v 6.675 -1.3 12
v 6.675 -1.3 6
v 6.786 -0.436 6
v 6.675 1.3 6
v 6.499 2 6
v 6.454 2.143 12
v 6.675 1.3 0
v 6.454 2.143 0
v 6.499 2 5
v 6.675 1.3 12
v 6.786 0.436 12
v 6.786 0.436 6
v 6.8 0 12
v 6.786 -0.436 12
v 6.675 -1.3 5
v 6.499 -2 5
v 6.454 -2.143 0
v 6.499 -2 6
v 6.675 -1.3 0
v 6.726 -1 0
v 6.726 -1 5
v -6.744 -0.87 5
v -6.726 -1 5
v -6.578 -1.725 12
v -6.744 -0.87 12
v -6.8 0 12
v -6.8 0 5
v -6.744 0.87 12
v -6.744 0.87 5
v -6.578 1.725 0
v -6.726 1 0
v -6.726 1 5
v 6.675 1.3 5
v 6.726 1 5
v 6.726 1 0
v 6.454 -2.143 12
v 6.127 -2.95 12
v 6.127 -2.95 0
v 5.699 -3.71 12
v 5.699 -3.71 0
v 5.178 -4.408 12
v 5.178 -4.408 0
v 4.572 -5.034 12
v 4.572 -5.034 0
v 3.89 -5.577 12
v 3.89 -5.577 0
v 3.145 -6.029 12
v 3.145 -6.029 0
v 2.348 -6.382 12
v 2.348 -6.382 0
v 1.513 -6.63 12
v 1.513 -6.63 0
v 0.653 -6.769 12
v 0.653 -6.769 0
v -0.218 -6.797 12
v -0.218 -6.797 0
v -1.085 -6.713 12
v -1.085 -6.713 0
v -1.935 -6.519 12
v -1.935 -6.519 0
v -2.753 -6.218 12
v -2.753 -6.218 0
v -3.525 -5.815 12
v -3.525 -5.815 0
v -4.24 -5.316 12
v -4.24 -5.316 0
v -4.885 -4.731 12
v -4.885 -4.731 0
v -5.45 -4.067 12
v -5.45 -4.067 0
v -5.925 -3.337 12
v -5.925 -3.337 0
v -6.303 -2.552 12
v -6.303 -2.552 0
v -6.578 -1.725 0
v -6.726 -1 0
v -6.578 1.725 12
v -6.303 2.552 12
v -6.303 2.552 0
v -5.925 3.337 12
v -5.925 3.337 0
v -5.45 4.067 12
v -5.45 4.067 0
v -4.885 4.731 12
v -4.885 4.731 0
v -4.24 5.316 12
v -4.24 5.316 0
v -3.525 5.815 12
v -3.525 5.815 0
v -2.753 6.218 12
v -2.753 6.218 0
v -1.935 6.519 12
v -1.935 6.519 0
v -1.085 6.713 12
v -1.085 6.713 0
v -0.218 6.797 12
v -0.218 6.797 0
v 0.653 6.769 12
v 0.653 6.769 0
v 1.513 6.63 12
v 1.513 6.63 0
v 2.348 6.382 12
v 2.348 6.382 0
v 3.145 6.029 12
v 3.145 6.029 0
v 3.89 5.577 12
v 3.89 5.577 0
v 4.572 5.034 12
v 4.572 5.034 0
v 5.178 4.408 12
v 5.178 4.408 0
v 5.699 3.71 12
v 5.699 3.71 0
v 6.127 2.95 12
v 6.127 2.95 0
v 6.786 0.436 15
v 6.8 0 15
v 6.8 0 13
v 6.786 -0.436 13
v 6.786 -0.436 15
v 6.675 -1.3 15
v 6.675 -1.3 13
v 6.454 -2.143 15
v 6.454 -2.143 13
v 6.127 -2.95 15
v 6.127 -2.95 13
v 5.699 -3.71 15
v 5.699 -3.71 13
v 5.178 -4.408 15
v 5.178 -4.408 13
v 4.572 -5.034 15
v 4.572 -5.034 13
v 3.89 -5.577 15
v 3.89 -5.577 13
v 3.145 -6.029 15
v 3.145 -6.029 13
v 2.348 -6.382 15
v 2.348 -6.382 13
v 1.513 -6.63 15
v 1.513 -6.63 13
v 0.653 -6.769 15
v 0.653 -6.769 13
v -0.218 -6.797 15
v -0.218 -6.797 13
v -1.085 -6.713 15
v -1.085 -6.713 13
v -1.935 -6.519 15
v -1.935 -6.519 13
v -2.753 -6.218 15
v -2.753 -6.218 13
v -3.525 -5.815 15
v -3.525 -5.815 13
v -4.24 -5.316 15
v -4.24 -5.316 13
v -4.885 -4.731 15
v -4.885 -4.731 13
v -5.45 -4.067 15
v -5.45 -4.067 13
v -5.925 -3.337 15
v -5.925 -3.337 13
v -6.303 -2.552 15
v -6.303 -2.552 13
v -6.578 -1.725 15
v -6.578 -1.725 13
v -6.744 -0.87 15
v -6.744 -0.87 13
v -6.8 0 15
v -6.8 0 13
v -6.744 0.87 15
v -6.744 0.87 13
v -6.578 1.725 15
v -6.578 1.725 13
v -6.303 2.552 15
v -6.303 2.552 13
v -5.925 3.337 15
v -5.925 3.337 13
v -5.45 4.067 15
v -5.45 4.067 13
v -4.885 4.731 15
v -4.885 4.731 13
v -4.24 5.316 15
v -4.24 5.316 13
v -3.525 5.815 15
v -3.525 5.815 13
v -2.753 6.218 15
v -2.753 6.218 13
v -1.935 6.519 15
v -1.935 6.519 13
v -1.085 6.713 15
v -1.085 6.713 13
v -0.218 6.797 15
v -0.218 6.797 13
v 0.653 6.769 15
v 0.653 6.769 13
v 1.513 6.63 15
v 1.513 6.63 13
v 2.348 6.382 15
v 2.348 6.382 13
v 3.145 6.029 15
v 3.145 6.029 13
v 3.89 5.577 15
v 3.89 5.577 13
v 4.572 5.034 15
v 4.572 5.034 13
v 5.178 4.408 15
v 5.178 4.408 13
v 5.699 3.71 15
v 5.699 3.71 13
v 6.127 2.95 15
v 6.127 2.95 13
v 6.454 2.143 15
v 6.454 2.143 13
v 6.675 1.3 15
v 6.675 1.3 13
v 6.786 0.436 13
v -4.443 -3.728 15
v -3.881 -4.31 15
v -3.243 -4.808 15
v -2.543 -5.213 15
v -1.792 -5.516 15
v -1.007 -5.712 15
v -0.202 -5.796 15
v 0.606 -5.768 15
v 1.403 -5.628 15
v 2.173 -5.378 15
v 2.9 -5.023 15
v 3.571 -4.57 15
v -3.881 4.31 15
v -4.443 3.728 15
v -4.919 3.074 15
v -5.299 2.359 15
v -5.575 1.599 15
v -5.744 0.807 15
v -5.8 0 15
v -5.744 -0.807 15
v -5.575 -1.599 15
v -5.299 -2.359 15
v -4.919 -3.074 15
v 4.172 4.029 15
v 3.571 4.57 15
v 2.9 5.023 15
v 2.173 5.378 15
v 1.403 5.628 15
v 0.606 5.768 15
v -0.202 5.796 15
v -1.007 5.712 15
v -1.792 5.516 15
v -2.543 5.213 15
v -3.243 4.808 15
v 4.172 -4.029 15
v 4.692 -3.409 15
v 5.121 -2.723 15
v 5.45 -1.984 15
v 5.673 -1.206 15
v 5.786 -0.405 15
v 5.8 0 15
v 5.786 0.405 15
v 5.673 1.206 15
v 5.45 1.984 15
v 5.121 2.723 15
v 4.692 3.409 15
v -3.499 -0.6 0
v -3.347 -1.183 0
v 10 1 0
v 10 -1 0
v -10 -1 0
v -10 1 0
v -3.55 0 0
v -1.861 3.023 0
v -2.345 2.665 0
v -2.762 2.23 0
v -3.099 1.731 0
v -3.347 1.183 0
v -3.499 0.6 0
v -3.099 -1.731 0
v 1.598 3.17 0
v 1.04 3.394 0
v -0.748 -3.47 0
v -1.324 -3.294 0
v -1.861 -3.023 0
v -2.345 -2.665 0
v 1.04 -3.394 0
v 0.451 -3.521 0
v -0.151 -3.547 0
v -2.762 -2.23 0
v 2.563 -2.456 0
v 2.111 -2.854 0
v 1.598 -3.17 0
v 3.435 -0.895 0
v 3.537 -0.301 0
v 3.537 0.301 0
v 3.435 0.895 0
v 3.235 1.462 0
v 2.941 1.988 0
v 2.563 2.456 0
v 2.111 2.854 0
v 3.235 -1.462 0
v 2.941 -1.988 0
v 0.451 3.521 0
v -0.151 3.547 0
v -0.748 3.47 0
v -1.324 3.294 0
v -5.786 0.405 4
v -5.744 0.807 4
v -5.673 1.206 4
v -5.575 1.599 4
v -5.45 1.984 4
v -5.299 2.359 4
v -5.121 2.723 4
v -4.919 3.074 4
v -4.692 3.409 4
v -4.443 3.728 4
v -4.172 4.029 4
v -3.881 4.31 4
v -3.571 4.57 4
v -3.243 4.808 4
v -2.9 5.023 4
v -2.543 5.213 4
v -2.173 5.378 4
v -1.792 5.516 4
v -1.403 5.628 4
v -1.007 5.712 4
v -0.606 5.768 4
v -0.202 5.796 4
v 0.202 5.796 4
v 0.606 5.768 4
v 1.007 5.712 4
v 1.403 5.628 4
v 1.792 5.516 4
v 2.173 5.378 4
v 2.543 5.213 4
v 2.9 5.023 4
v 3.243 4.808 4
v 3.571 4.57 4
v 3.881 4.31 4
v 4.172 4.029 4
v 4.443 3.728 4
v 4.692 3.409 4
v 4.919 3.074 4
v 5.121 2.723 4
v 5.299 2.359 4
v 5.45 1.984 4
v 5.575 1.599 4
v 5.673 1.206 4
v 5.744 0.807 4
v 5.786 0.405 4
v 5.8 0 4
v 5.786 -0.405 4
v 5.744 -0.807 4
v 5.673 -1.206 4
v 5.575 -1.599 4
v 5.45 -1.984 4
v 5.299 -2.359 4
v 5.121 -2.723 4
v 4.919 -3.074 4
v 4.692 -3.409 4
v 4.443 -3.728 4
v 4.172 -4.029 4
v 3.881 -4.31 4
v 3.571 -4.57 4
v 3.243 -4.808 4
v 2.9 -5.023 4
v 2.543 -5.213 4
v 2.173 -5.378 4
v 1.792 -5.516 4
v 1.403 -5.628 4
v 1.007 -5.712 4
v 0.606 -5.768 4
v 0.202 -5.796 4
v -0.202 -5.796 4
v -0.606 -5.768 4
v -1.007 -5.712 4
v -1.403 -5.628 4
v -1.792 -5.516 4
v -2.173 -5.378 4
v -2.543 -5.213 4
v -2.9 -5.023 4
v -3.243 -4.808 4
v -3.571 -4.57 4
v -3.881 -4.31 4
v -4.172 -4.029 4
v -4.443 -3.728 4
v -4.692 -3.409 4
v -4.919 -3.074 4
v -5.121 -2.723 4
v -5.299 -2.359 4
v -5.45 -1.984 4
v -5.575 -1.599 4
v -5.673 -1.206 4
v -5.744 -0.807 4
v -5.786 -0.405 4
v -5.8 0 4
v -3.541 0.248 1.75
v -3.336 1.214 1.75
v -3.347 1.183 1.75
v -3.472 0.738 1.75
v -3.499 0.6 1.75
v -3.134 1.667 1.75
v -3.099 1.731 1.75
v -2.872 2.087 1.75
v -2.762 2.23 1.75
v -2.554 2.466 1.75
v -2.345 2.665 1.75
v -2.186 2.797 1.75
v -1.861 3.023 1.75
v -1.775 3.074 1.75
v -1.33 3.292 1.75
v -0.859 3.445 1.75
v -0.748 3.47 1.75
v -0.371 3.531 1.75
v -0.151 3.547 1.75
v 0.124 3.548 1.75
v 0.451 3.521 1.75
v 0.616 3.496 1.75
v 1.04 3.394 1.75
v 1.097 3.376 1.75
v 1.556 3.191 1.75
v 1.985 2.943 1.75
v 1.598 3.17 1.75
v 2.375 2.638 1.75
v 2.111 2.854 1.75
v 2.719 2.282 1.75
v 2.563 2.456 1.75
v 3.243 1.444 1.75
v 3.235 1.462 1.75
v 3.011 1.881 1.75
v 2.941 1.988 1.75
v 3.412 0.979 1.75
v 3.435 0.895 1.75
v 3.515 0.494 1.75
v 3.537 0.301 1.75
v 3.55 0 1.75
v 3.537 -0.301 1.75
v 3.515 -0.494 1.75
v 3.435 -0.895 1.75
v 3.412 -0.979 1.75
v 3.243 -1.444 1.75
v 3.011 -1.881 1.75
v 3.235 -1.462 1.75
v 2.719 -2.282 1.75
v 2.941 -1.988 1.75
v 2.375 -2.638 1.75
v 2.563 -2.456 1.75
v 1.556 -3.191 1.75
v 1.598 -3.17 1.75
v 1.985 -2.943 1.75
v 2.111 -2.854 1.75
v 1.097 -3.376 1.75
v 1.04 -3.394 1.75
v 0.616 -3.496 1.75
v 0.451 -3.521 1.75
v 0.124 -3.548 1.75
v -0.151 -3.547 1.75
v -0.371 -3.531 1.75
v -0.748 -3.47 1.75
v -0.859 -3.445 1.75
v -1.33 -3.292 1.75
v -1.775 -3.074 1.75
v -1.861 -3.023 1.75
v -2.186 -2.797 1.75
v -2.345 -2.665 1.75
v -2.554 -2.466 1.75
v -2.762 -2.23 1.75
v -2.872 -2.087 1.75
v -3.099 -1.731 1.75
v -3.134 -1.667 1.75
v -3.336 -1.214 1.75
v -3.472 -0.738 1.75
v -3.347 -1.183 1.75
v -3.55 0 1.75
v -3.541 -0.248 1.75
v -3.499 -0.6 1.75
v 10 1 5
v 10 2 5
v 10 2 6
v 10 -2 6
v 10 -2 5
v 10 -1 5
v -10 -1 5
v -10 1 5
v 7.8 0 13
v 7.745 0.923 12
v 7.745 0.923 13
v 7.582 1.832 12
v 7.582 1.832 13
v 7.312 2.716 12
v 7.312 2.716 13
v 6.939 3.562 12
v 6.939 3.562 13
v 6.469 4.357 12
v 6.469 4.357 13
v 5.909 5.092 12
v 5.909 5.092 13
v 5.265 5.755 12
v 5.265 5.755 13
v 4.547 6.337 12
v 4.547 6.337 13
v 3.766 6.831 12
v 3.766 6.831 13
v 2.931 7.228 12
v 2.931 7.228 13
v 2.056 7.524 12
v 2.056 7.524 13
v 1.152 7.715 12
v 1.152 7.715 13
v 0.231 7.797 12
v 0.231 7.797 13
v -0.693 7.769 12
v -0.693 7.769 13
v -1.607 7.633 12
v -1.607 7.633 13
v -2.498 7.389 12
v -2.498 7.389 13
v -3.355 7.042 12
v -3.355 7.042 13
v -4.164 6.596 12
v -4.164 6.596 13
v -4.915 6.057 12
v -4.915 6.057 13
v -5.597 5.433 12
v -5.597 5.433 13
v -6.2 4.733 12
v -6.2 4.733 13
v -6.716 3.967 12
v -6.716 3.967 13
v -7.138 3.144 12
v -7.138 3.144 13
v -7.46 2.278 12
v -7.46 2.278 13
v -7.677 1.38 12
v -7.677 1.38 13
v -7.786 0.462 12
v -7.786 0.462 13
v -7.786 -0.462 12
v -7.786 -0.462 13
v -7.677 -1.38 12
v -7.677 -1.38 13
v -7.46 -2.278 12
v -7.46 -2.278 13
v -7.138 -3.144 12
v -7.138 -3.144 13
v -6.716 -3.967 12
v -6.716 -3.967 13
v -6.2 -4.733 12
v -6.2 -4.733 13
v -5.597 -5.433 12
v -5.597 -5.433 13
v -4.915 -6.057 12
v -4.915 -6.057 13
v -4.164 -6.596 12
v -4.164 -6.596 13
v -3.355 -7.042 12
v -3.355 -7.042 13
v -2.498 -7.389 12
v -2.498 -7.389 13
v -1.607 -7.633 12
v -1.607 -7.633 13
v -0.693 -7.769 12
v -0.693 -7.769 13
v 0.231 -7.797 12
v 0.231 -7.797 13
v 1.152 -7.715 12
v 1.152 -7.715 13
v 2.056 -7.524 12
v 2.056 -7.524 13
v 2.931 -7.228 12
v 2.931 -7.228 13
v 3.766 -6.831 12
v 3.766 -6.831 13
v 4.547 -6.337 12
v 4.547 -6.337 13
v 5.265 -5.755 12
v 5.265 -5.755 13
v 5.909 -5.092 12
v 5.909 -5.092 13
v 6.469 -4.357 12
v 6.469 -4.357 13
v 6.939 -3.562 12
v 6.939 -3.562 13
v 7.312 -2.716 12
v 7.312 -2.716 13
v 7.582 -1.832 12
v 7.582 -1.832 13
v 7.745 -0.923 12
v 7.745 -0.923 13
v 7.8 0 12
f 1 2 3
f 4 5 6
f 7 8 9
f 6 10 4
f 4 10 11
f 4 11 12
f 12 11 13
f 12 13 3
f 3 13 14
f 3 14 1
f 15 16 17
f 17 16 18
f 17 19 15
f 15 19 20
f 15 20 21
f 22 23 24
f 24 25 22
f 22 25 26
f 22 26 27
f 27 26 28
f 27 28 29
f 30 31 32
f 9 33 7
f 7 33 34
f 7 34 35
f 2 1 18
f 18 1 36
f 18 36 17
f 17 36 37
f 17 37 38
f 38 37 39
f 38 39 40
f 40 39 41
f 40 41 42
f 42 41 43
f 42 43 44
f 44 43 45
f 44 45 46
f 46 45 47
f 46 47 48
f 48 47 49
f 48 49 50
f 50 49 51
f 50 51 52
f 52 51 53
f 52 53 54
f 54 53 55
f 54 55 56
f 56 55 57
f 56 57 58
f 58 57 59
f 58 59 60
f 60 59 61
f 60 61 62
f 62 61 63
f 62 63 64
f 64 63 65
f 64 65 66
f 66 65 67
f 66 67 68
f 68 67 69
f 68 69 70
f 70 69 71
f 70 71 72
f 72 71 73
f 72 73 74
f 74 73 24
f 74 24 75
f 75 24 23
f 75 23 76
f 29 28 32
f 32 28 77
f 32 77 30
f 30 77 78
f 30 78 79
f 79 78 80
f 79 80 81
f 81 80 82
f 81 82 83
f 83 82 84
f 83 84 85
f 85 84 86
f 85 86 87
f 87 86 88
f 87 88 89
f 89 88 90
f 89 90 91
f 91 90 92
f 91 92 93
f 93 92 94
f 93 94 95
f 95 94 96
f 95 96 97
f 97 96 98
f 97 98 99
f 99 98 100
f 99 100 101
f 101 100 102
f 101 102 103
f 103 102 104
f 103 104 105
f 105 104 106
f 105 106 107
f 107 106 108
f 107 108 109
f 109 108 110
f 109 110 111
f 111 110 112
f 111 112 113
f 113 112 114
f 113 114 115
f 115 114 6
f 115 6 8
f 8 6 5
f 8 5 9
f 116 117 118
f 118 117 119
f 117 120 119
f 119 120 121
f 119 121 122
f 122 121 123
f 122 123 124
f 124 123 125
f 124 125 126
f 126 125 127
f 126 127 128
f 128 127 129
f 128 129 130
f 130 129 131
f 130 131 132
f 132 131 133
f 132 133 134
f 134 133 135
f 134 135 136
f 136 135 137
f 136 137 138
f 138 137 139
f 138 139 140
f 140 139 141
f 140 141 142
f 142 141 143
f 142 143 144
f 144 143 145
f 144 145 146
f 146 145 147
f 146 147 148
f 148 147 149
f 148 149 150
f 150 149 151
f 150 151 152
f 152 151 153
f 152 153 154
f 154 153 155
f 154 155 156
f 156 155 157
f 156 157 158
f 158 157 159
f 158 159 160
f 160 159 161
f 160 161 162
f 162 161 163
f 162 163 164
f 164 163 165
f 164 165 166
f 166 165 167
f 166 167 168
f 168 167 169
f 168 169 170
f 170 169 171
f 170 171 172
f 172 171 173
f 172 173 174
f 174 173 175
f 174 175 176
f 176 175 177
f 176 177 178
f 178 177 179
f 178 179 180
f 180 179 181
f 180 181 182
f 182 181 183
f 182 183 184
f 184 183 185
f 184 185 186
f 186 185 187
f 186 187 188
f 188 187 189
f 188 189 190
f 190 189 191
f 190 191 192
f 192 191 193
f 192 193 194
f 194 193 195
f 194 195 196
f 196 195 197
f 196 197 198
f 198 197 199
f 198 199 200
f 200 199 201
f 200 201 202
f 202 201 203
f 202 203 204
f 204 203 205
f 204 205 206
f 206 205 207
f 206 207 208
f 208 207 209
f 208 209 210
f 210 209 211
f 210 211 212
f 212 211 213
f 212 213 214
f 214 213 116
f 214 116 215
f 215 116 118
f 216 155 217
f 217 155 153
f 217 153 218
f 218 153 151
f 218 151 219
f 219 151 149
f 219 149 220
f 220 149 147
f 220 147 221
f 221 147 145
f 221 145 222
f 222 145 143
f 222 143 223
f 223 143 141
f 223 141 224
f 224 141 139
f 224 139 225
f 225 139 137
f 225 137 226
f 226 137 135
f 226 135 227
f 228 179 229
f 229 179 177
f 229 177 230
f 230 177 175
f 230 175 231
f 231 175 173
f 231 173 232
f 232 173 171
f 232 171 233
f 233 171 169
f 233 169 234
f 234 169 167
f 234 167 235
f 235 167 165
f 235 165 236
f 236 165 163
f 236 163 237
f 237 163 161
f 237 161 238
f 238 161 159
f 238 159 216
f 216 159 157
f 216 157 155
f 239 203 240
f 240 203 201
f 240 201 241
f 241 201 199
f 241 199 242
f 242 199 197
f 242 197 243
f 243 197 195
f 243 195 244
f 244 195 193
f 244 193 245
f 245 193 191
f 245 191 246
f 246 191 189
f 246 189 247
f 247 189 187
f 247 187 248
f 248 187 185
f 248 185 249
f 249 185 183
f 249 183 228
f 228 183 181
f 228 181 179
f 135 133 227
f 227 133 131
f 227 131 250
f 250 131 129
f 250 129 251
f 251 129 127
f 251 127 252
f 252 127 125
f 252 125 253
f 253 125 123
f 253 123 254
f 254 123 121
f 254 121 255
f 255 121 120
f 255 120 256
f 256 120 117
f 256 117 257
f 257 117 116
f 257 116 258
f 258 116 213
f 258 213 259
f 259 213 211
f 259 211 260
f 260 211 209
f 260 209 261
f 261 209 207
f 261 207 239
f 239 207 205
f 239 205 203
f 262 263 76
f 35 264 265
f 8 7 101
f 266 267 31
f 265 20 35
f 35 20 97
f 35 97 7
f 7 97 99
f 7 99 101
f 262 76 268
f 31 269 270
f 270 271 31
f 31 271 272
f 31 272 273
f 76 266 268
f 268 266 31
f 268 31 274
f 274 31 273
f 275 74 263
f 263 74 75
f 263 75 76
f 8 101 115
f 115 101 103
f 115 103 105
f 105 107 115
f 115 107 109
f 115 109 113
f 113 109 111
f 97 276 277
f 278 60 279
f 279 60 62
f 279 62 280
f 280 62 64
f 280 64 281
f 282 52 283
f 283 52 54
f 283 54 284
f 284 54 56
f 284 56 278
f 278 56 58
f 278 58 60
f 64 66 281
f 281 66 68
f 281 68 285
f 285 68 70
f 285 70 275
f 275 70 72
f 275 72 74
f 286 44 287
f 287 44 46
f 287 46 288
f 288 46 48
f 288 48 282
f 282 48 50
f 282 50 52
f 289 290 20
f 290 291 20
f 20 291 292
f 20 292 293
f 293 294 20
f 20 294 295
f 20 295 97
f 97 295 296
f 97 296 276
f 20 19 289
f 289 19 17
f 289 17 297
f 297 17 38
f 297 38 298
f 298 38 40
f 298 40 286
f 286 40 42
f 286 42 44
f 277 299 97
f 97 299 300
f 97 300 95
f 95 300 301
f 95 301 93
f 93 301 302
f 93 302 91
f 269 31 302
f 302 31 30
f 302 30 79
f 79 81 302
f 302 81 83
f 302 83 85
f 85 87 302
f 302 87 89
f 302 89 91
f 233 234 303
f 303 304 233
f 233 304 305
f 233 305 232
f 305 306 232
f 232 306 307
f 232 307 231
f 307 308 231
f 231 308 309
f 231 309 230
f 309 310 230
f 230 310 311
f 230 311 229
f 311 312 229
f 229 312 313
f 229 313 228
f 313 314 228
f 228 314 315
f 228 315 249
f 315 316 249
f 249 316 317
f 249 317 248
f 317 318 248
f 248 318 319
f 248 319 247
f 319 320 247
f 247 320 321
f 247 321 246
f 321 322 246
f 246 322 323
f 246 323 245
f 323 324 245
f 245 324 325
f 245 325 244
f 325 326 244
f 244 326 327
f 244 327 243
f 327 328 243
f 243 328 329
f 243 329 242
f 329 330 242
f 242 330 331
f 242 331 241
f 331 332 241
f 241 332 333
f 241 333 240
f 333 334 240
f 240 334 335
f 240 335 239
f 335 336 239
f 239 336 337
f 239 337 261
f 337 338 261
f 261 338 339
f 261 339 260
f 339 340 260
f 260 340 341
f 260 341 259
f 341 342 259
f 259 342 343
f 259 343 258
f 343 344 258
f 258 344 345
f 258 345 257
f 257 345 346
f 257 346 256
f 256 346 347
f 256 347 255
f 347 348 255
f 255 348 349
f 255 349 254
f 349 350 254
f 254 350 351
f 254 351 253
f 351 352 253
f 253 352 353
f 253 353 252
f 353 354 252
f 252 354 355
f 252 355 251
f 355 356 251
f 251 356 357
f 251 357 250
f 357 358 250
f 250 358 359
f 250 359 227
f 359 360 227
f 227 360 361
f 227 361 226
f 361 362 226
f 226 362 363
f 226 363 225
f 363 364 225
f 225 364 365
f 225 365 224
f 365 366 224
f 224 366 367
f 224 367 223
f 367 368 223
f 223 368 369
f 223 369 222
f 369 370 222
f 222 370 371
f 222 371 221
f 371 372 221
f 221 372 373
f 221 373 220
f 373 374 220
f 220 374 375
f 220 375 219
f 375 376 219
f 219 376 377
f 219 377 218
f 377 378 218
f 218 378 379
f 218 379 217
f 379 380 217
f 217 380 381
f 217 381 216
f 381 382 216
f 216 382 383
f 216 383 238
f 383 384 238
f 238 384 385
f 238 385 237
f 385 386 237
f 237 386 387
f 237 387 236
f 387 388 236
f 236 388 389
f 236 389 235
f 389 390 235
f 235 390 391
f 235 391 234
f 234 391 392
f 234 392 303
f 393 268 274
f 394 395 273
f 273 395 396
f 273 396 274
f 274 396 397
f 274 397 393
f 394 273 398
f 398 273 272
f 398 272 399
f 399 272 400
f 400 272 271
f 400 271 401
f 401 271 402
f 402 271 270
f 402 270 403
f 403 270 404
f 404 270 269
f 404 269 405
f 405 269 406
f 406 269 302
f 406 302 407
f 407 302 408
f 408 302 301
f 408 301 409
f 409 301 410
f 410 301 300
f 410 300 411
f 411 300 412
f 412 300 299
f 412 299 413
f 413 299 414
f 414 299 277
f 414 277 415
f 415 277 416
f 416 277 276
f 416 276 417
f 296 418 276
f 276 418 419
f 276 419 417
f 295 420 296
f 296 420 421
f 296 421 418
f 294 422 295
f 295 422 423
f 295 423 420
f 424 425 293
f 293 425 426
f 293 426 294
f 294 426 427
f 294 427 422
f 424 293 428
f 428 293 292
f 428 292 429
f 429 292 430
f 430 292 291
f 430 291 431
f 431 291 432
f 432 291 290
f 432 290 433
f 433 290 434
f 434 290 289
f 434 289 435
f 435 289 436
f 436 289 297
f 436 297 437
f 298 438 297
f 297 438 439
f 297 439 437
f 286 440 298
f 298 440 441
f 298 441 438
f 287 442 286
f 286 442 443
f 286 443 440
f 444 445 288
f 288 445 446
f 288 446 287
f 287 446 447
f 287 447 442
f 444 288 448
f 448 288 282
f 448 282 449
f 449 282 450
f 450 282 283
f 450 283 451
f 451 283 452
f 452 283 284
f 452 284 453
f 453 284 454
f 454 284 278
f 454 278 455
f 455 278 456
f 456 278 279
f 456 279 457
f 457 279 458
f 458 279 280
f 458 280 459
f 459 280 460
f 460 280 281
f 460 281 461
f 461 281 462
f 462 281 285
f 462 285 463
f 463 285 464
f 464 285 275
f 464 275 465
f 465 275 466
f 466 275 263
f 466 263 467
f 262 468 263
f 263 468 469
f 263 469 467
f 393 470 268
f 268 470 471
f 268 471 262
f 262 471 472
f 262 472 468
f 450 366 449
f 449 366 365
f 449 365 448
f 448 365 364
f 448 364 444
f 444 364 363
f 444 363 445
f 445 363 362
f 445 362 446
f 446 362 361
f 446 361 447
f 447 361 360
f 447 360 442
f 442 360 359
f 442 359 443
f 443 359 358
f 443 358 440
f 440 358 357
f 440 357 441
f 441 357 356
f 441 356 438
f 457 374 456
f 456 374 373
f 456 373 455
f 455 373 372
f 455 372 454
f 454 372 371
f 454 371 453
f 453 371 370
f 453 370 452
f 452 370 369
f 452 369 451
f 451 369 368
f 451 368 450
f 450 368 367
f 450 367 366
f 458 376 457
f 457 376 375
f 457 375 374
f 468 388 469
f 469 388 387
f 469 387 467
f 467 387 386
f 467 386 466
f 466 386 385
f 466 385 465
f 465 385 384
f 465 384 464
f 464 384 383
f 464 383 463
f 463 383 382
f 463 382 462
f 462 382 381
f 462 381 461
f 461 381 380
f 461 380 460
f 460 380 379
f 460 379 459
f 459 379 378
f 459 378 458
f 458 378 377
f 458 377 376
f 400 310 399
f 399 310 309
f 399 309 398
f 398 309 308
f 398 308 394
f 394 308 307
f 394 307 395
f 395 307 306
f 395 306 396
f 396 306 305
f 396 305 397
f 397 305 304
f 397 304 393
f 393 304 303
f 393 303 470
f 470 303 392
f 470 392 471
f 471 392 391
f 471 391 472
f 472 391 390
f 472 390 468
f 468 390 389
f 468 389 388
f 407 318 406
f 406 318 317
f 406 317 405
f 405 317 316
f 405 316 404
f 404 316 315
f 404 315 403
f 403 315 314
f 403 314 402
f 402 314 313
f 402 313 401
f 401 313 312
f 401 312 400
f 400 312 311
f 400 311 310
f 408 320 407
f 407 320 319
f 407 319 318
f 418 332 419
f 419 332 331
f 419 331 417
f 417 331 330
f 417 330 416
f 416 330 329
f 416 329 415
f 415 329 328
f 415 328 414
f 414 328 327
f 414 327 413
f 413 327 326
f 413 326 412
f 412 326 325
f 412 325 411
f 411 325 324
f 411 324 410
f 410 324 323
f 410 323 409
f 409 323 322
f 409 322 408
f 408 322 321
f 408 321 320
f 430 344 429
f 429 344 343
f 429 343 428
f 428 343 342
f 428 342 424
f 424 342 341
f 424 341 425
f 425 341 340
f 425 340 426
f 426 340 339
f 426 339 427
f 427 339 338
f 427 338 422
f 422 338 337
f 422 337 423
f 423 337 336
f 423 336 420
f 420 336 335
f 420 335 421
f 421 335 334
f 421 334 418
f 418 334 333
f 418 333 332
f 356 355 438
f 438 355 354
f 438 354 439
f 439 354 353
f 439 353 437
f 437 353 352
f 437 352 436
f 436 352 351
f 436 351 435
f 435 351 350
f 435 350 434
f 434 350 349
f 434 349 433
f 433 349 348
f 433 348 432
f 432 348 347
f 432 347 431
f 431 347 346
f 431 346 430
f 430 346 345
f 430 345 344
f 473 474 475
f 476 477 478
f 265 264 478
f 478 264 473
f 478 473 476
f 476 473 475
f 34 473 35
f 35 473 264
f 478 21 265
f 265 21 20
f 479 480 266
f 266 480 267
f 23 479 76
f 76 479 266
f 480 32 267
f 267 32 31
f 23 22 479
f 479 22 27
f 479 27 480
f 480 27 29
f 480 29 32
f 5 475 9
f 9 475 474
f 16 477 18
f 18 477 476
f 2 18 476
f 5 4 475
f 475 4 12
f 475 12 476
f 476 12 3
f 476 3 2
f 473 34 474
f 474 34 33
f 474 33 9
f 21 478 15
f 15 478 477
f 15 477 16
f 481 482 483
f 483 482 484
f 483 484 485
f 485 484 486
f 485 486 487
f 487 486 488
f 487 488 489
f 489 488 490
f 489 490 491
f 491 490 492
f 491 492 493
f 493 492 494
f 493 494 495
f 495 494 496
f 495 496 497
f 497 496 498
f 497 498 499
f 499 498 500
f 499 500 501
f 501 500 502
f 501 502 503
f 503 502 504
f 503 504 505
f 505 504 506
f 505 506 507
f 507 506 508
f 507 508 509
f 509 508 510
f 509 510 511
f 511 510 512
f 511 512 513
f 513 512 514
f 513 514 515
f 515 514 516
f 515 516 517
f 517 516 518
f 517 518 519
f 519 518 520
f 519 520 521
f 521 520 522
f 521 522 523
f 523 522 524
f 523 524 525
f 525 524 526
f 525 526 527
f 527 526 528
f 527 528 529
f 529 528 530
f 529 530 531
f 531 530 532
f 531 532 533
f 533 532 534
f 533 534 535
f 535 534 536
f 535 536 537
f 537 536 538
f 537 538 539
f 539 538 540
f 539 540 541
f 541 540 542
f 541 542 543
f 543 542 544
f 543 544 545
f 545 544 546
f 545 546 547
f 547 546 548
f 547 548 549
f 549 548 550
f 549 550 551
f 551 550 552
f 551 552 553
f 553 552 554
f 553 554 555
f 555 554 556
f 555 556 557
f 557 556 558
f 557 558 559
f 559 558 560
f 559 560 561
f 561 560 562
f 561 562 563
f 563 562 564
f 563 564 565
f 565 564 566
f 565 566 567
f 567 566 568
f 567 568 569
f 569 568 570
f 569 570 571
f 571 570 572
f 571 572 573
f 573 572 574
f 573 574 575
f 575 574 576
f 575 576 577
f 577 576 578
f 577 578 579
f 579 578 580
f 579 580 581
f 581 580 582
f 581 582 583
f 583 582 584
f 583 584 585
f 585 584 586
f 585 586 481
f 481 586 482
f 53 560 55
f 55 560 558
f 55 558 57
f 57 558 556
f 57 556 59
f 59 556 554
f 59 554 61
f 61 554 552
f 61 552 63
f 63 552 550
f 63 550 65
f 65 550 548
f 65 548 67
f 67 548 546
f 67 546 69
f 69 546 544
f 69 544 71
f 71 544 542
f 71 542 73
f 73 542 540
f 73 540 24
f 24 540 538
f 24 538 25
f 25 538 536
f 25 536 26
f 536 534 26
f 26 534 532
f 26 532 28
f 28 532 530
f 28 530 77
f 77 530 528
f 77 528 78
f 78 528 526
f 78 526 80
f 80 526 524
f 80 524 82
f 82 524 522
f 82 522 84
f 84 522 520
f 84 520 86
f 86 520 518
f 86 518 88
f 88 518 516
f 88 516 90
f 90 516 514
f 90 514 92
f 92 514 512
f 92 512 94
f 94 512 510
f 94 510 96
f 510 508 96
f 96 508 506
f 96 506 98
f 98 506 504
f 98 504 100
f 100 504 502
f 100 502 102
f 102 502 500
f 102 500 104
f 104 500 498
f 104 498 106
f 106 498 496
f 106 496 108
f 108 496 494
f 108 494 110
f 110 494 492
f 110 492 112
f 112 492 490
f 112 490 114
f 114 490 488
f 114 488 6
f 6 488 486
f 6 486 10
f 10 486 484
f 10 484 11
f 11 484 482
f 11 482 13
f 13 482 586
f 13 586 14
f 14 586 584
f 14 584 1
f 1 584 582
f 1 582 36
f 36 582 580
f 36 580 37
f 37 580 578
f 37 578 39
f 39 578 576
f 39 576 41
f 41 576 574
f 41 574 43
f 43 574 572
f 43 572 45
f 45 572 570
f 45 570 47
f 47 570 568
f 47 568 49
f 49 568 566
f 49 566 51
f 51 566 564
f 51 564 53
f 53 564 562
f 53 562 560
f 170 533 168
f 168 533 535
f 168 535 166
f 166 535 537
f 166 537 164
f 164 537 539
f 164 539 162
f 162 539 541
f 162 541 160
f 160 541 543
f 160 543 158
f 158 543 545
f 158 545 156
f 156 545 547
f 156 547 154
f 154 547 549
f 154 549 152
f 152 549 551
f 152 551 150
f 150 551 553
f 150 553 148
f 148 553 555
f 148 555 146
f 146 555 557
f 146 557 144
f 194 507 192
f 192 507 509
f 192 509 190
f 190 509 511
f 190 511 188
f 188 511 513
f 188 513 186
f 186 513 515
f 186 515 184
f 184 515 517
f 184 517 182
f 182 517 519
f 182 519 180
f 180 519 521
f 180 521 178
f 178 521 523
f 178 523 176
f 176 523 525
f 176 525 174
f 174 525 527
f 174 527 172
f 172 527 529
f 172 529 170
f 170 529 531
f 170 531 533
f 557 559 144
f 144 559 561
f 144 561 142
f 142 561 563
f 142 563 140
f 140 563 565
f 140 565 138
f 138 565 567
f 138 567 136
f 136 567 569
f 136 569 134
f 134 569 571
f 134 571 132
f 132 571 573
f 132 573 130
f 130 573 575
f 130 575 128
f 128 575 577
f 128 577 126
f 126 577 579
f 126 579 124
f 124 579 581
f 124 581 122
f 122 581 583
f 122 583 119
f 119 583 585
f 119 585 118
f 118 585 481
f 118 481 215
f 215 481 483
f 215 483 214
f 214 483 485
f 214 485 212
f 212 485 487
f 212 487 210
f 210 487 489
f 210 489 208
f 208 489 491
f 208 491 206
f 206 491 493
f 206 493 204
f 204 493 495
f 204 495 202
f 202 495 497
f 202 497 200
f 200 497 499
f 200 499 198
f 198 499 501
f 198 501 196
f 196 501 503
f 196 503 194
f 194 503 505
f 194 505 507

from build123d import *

# Parameters (mm, degrees)
ESQUISSE1_R             = 6.8
BOSS_EXTRU_1_DEPTH      = 15
COQUE1_T                = -1
ESQUISSE2_R             = 3.55
ENL_V_MAT_EXTRU_1_DEPTH = 15
CHANFREIN1_SIZE         = 3
BOSS_EXTRU_2_DEPTH      = 5
BOSS_EXTRU_3_DEPTH      = 1
BOSS_EXTRU_4_START      = -3
ESQUISSE5_R             = 7.8
ESQUISSE5_R_2           = 6.8
BOSS_EXTRU_4_DEPTH      = 1


with BuildPart() as part:
    # Esquisse1 → Boss.-Extru.1 (new body)
    with BuildSketch(Plane.XY):
        Circle(ESQUISSE1_R)
    extrude(amount=BOSS_EXTRU_1_DEPTH)

    # Coque1
    coque1_openings = [part.faces().sort_by_distance(p)[0] for p in [
        (0, 0, 15),
    ]]
    offset(amount=COQUE1_T, openings=coque1_openings, kind=Kind.INTERSECTION)

    # Esquisse2 → Enlèv. mat.-Extru.1 (cut)
    with BuildSketch(Plane(origin=(0, 0, 0), x_dir=(-1, 0, 0), z_dir=(0, 0, -1))):
        Circle(ESQUISSE2_R)
    extrude(amount=-ENL_V_MAT_EXTRU_1_DEPTH, mode=Mode.SUBTRACT)

    # Chanfrein1
    # the kernel refuses this chamfer: 3 mm, written as the material it adds along each edge
    with BuildSketch(Plane(origin=(0, 0, 1), x_dir=(1, 0, 0), z_dir=(0, 1, 0))) as chanfrein1_piece_1_section:
        Polygon((5.8, -CHANFREIN1_SIZE), (5.8 - CHANFREIN1_SIZE, 0), (5.8, 0), align=None)
    chanfrein1_piece_1 = revolve(axis=Axis((0, 0, 1), (0, 0, -1)), mode=Mode.PRIVATE)
    chanfrein1_piece_1 = chanfrein1_piece_1 - Plane(origin=(0, 0, 2.8805317), x_dir=(-1, 0, 0), z_dir=(0, 0, -1)) * Cylinder(3.55, 24, mode=Mode.PRIVATE)
    add(chanfrein1_piece_1)

    # Esquisse3 → Boss.-Extru.2 (add)
    with BuildSketch(Plane(origin=(0, 0, 0), x_dir=(-1, 0, 0), z_dir=(0, 0, -1))):
        with BuildLine():
            Line((-6.726068688, 1), (-10, 1))
            Line((-10, 1), (-10, -1))
            Line((-10, -1), (-6.726068688, -1))
            ThreePointArc((-6.726068688, -1), (-6.8, 0), (-6.726068688, 1))
        make_face()
        with BuildLine():
            Line((10, -1), (6.726068688, -1))
            ThreePointArc((6.726068688, -1), (6.8, 0), (6.726068688, 1))
            Line((6.726068688, 1), (10, 1))
            Line((10, 1), (10, -1))
        make_face()
    extrude(amount=-BOSS_EXTRU_2_DEPTH)

    # Esquisse4 → Boss.-Extru.3 (add)
    with BuildSketch(Plane.XY.offset(5)):
        with BuildLine():
            Line((10, 2), (10, -2))
            Line((10, -2), (6.499230724, -2))
            Line((6.499230724, -2), (5.444263036, -2))
            ThreePointArc((5.444263036, -2), (5.8, 0), (5.444263036, 2))
            Line((5.444263036, 2), (6.499230724, 2))
            Line((6.499230724, 2), (10, 2))
        make_face()
    extrude(amount=BOSS_EXTRU_3_DEPTH)

    # Esquisse5 → Boss.-Extru.4 (add)
    with BuildSketch(Plane.XY.offset(15).offset(BOSS_EXTRU_4_START)):
        Circle(ESQUISSE5_R)
        with Locations(Location((0, 0, 0), (0, 0, 171.543480665))):
            Circle(ESQUISSE5_R_2, mode=Mode.SUBTRACT)
    extrude(amount=BOSS_EXTRU_4_DEPTH)


solid = part.part
